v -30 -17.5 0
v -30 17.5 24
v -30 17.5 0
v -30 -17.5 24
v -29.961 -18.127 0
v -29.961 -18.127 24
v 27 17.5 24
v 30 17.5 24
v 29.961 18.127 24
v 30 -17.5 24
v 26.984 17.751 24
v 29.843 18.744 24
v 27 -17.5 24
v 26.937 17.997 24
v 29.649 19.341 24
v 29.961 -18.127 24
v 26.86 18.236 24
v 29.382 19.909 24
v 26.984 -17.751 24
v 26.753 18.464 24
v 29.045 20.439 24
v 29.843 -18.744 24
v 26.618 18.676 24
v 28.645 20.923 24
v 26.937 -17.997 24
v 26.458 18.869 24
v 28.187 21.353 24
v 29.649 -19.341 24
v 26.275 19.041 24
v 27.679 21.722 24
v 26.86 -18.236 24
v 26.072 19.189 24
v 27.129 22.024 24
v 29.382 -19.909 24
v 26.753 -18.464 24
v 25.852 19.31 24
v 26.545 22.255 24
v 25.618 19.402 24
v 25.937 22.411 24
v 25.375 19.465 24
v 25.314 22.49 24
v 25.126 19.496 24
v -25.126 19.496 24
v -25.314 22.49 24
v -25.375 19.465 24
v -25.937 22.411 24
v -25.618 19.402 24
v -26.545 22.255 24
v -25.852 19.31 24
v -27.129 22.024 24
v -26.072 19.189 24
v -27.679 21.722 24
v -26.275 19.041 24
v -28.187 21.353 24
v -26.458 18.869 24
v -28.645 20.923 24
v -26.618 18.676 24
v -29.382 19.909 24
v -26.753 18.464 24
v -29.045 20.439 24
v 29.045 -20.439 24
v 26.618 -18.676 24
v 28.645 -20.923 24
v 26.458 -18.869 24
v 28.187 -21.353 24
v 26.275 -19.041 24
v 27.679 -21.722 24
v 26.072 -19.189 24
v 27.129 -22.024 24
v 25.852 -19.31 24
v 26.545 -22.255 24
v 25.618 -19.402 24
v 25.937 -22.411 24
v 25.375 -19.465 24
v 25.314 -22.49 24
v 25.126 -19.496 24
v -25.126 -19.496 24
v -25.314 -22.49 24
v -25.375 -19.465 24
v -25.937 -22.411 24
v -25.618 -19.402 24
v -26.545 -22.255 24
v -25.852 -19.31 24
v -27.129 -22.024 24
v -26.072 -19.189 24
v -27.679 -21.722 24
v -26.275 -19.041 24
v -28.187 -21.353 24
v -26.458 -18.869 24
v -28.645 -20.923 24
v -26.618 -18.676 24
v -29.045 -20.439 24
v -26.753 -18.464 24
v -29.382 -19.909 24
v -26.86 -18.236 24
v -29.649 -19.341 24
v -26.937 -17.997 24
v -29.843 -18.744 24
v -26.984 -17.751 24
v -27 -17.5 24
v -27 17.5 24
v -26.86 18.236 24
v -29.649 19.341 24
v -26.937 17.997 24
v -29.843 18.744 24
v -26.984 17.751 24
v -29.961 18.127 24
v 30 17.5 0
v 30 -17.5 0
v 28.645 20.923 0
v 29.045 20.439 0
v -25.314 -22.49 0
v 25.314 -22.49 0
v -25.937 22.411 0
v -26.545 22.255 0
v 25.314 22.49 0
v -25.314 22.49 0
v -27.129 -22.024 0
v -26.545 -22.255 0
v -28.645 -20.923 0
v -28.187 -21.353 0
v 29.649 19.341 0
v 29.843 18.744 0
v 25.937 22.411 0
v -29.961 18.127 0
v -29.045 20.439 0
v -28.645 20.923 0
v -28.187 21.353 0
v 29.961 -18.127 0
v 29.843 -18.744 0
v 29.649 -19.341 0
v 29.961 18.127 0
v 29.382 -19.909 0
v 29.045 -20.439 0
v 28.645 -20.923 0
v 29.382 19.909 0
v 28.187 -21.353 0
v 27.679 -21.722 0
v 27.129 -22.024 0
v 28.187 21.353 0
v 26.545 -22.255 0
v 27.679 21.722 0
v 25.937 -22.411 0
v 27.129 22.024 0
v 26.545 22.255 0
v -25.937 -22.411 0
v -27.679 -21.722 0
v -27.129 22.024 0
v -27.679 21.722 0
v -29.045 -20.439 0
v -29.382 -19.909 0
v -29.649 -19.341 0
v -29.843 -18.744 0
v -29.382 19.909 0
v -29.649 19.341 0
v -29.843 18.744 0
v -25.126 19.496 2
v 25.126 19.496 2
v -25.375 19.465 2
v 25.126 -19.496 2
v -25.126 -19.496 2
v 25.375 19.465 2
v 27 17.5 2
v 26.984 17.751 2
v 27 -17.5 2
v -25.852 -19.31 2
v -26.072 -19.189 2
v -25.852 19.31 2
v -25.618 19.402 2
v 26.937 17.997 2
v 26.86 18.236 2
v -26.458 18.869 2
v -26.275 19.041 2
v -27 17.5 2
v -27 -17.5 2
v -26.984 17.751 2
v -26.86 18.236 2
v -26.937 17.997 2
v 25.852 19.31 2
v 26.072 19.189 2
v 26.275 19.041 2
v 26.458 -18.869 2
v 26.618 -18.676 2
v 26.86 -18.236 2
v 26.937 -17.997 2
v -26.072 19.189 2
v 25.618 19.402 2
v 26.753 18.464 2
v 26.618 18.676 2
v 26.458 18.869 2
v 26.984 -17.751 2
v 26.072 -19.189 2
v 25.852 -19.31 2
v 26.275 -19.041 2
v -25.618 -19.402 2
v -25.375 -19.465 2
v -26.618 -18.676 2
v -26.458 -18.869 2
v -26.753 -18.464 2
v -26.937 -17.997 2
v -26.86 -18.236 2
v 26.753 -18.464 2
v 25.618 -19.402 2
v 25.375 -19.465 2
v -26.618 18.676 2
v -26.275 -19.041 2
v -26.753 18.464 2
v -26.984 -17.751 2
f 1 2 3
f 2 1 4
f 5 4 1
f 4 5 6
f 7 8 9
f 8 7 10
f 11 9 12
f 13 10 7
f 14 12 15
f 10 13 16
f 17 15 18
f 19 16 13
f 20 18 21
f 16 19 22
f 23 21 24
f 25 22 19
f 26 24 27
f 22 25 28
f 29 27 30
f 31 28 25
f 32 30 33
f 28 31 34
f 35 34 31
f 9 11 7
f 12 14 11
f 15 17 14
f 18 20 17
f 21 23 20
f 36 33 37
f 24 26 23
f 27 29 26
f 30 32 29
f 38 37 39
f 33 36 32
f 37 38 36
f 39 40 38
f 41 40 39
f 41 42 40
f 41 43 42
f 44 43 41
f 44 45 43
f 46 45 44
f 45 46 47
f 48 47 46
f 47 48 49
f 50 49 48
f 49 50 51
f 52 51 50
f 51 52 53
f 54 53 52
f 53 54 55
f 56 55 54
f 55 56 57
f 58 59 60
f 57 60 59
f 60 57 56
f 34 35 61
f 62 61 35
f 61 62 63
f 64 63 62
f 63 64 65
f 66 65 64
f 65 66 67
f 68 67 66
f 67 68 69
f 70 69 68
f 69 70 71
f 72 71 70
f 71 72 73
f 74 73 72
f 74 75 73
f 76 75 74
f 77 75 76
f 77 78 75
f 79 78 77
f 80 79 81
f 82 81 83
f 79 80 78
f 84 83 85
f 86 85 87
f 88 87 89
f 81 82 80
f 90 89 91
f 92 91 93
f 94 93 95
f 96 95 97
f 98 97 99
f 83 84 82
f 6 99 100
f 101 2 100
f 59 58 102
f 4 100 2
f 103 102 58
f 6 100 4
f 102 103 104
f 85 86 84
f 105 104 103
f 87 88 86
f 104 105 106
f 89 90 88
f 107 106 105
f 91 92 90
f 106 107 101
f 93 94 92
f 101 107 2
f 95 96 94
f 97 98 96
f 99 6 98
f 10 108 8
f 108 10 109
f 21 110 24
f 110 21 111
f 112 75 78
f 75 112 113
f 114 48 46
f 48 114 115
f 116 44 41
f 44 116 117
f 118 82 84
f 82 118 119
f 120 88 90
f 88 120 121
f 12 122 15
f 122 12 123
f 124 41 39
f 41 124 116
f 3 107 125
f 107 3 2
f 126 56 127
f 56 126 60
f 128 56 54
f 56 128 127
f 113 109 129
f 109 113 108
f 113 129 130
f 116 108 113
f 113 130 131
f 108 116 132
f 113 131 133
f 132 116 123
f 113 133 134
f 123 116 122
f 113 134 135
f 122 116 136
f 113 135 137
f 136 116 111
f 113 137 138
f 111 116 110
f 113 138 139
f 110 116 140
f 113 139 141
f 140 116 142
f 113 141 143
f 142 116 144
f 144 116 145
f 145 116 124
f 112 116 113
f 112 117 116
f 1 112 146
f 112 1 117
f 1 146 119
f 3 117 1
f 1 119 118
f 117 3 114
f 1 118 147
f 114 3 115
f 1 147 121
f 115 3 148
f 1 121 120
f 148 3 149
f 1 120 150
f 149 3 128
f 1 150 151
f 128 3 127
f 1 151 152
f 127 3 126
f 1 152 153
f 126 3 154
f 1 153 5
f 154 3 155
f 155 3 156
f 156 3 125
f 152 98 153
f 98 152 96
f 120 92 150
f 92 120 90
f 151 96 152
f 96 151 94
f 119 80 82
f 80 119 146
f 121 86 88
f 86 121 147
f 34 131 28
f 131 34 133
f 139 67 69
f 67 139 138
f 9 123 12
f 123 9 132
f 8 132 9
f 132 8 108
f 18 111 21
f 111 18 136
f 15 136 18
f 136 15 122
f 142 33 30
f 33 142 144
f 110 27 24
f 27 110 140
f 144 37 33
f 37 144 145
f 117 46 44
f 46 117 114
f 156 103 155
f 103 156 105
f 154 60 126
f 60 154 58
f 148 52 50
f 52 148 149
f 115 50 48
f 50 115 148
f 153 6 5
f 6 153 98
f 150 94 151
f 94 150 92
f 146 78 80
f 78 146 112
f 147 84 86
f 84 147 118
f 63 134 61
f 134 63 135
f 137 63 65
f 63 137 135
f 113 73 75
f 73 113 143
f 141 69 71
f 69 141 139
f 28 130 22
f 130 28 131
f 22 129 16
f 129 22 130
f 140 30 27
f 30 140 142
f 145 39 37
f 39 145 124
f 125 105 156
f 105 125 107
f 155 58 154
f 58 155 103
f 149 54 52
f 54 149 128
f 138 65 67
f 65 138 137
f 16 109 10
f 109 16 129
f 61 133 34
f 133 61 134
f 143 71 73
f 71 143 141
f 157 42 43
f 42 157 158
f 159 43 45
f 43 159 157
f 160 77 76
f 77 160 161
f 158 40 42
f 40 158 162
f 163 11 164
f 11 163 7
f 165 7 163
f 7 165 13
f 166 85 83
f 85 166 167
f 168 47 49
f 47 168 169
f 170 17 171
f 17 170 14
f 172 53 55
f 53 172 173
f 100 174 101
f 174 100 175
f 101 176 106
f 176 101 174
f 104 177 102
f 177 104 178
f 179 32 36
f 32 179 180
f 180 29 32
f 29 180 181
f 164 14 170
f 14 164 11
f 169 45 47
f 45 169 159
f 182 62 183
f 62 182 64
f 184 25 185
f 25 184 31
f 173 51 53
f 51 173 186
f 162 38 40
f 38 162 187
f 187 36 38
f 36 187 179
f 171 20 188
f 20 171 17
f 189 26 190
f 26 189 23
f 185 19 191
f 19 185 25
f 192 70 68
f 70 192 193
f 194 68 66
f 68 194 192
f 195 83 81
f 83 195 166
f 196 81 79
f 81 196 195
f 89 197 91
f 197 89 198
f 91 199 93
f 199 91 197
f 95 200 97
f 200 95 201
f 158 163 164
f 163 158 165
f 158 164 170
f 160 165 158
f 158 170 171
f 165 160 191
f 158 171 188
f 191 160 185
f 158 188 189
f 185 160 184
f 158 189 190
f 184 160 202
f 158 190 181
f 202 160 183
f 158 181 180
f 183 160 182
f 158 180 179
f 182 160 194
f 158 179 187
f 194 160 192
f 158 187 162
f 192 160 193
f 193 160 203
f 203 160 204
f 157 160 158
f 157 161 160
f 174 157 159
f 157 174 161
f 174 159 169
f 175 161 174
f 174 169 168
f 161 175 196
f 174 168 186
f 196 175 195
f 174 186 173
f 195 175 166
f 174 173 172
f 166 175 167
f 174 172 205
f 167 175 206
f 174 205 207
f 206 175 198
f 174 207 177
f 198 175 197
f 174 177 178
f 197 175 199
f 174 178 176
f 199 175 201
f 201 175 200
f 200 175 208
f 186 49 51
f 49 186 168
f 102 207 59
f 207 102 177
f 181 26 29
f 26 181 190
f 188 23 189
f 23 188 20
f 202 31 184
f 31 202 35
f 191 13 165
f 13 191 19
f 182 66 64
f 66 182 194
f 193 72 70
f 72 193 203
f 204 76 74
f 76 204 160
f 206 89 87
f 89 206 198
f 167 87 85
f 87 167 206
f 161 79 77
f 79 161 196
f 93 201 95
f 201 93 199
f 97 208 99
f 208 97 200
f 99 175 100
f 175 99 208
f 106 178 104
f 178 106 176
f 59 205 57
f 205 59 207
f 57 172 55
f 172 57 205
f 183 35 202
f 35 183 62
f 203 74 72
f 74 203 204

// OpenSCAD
$fn = 50;


difference() {
	union() {
		hull() {
			translate(v = [-25.0000000000, 17.5000000000, 0]) {
				cylinder(h = 24, r = 5);
			}
			translate(v = [25.0000000000, 17.5000000000, 0]) {
				cylinder(h = 24, r = 5);
			}
			translate(v = [-25.0000000000, -17.5000000000, 0]) {
				cylinder(h = 24, r = 5);
			}
			translate(v = [25.0000000000, -17.5000000000, 0]) {
				cylinder(h = 24, r = 5);
			}
		}
	}
	union() {
		translate(v = [0, 0, 2]) {
			#hull() {
				translate(v = [-25.0000000000, 17.5000000000, 0]) {
					cylinder(h = 22, r = 2);
				}
				translate(v = [25.0000000000, 17.5000000000, 0]) {
					cylinder(h = 22, r = 2);
				}
				translate(v = [-25.0000000000, -17.5000000000, 0]) {
					cylinder(h = 22, r = 2);
				}
				translate(v = [25.0000000000, -17.5000000000, 0]) {
					cylinder(h = 22, r = 2);
				}
			}
		}
	}
}
